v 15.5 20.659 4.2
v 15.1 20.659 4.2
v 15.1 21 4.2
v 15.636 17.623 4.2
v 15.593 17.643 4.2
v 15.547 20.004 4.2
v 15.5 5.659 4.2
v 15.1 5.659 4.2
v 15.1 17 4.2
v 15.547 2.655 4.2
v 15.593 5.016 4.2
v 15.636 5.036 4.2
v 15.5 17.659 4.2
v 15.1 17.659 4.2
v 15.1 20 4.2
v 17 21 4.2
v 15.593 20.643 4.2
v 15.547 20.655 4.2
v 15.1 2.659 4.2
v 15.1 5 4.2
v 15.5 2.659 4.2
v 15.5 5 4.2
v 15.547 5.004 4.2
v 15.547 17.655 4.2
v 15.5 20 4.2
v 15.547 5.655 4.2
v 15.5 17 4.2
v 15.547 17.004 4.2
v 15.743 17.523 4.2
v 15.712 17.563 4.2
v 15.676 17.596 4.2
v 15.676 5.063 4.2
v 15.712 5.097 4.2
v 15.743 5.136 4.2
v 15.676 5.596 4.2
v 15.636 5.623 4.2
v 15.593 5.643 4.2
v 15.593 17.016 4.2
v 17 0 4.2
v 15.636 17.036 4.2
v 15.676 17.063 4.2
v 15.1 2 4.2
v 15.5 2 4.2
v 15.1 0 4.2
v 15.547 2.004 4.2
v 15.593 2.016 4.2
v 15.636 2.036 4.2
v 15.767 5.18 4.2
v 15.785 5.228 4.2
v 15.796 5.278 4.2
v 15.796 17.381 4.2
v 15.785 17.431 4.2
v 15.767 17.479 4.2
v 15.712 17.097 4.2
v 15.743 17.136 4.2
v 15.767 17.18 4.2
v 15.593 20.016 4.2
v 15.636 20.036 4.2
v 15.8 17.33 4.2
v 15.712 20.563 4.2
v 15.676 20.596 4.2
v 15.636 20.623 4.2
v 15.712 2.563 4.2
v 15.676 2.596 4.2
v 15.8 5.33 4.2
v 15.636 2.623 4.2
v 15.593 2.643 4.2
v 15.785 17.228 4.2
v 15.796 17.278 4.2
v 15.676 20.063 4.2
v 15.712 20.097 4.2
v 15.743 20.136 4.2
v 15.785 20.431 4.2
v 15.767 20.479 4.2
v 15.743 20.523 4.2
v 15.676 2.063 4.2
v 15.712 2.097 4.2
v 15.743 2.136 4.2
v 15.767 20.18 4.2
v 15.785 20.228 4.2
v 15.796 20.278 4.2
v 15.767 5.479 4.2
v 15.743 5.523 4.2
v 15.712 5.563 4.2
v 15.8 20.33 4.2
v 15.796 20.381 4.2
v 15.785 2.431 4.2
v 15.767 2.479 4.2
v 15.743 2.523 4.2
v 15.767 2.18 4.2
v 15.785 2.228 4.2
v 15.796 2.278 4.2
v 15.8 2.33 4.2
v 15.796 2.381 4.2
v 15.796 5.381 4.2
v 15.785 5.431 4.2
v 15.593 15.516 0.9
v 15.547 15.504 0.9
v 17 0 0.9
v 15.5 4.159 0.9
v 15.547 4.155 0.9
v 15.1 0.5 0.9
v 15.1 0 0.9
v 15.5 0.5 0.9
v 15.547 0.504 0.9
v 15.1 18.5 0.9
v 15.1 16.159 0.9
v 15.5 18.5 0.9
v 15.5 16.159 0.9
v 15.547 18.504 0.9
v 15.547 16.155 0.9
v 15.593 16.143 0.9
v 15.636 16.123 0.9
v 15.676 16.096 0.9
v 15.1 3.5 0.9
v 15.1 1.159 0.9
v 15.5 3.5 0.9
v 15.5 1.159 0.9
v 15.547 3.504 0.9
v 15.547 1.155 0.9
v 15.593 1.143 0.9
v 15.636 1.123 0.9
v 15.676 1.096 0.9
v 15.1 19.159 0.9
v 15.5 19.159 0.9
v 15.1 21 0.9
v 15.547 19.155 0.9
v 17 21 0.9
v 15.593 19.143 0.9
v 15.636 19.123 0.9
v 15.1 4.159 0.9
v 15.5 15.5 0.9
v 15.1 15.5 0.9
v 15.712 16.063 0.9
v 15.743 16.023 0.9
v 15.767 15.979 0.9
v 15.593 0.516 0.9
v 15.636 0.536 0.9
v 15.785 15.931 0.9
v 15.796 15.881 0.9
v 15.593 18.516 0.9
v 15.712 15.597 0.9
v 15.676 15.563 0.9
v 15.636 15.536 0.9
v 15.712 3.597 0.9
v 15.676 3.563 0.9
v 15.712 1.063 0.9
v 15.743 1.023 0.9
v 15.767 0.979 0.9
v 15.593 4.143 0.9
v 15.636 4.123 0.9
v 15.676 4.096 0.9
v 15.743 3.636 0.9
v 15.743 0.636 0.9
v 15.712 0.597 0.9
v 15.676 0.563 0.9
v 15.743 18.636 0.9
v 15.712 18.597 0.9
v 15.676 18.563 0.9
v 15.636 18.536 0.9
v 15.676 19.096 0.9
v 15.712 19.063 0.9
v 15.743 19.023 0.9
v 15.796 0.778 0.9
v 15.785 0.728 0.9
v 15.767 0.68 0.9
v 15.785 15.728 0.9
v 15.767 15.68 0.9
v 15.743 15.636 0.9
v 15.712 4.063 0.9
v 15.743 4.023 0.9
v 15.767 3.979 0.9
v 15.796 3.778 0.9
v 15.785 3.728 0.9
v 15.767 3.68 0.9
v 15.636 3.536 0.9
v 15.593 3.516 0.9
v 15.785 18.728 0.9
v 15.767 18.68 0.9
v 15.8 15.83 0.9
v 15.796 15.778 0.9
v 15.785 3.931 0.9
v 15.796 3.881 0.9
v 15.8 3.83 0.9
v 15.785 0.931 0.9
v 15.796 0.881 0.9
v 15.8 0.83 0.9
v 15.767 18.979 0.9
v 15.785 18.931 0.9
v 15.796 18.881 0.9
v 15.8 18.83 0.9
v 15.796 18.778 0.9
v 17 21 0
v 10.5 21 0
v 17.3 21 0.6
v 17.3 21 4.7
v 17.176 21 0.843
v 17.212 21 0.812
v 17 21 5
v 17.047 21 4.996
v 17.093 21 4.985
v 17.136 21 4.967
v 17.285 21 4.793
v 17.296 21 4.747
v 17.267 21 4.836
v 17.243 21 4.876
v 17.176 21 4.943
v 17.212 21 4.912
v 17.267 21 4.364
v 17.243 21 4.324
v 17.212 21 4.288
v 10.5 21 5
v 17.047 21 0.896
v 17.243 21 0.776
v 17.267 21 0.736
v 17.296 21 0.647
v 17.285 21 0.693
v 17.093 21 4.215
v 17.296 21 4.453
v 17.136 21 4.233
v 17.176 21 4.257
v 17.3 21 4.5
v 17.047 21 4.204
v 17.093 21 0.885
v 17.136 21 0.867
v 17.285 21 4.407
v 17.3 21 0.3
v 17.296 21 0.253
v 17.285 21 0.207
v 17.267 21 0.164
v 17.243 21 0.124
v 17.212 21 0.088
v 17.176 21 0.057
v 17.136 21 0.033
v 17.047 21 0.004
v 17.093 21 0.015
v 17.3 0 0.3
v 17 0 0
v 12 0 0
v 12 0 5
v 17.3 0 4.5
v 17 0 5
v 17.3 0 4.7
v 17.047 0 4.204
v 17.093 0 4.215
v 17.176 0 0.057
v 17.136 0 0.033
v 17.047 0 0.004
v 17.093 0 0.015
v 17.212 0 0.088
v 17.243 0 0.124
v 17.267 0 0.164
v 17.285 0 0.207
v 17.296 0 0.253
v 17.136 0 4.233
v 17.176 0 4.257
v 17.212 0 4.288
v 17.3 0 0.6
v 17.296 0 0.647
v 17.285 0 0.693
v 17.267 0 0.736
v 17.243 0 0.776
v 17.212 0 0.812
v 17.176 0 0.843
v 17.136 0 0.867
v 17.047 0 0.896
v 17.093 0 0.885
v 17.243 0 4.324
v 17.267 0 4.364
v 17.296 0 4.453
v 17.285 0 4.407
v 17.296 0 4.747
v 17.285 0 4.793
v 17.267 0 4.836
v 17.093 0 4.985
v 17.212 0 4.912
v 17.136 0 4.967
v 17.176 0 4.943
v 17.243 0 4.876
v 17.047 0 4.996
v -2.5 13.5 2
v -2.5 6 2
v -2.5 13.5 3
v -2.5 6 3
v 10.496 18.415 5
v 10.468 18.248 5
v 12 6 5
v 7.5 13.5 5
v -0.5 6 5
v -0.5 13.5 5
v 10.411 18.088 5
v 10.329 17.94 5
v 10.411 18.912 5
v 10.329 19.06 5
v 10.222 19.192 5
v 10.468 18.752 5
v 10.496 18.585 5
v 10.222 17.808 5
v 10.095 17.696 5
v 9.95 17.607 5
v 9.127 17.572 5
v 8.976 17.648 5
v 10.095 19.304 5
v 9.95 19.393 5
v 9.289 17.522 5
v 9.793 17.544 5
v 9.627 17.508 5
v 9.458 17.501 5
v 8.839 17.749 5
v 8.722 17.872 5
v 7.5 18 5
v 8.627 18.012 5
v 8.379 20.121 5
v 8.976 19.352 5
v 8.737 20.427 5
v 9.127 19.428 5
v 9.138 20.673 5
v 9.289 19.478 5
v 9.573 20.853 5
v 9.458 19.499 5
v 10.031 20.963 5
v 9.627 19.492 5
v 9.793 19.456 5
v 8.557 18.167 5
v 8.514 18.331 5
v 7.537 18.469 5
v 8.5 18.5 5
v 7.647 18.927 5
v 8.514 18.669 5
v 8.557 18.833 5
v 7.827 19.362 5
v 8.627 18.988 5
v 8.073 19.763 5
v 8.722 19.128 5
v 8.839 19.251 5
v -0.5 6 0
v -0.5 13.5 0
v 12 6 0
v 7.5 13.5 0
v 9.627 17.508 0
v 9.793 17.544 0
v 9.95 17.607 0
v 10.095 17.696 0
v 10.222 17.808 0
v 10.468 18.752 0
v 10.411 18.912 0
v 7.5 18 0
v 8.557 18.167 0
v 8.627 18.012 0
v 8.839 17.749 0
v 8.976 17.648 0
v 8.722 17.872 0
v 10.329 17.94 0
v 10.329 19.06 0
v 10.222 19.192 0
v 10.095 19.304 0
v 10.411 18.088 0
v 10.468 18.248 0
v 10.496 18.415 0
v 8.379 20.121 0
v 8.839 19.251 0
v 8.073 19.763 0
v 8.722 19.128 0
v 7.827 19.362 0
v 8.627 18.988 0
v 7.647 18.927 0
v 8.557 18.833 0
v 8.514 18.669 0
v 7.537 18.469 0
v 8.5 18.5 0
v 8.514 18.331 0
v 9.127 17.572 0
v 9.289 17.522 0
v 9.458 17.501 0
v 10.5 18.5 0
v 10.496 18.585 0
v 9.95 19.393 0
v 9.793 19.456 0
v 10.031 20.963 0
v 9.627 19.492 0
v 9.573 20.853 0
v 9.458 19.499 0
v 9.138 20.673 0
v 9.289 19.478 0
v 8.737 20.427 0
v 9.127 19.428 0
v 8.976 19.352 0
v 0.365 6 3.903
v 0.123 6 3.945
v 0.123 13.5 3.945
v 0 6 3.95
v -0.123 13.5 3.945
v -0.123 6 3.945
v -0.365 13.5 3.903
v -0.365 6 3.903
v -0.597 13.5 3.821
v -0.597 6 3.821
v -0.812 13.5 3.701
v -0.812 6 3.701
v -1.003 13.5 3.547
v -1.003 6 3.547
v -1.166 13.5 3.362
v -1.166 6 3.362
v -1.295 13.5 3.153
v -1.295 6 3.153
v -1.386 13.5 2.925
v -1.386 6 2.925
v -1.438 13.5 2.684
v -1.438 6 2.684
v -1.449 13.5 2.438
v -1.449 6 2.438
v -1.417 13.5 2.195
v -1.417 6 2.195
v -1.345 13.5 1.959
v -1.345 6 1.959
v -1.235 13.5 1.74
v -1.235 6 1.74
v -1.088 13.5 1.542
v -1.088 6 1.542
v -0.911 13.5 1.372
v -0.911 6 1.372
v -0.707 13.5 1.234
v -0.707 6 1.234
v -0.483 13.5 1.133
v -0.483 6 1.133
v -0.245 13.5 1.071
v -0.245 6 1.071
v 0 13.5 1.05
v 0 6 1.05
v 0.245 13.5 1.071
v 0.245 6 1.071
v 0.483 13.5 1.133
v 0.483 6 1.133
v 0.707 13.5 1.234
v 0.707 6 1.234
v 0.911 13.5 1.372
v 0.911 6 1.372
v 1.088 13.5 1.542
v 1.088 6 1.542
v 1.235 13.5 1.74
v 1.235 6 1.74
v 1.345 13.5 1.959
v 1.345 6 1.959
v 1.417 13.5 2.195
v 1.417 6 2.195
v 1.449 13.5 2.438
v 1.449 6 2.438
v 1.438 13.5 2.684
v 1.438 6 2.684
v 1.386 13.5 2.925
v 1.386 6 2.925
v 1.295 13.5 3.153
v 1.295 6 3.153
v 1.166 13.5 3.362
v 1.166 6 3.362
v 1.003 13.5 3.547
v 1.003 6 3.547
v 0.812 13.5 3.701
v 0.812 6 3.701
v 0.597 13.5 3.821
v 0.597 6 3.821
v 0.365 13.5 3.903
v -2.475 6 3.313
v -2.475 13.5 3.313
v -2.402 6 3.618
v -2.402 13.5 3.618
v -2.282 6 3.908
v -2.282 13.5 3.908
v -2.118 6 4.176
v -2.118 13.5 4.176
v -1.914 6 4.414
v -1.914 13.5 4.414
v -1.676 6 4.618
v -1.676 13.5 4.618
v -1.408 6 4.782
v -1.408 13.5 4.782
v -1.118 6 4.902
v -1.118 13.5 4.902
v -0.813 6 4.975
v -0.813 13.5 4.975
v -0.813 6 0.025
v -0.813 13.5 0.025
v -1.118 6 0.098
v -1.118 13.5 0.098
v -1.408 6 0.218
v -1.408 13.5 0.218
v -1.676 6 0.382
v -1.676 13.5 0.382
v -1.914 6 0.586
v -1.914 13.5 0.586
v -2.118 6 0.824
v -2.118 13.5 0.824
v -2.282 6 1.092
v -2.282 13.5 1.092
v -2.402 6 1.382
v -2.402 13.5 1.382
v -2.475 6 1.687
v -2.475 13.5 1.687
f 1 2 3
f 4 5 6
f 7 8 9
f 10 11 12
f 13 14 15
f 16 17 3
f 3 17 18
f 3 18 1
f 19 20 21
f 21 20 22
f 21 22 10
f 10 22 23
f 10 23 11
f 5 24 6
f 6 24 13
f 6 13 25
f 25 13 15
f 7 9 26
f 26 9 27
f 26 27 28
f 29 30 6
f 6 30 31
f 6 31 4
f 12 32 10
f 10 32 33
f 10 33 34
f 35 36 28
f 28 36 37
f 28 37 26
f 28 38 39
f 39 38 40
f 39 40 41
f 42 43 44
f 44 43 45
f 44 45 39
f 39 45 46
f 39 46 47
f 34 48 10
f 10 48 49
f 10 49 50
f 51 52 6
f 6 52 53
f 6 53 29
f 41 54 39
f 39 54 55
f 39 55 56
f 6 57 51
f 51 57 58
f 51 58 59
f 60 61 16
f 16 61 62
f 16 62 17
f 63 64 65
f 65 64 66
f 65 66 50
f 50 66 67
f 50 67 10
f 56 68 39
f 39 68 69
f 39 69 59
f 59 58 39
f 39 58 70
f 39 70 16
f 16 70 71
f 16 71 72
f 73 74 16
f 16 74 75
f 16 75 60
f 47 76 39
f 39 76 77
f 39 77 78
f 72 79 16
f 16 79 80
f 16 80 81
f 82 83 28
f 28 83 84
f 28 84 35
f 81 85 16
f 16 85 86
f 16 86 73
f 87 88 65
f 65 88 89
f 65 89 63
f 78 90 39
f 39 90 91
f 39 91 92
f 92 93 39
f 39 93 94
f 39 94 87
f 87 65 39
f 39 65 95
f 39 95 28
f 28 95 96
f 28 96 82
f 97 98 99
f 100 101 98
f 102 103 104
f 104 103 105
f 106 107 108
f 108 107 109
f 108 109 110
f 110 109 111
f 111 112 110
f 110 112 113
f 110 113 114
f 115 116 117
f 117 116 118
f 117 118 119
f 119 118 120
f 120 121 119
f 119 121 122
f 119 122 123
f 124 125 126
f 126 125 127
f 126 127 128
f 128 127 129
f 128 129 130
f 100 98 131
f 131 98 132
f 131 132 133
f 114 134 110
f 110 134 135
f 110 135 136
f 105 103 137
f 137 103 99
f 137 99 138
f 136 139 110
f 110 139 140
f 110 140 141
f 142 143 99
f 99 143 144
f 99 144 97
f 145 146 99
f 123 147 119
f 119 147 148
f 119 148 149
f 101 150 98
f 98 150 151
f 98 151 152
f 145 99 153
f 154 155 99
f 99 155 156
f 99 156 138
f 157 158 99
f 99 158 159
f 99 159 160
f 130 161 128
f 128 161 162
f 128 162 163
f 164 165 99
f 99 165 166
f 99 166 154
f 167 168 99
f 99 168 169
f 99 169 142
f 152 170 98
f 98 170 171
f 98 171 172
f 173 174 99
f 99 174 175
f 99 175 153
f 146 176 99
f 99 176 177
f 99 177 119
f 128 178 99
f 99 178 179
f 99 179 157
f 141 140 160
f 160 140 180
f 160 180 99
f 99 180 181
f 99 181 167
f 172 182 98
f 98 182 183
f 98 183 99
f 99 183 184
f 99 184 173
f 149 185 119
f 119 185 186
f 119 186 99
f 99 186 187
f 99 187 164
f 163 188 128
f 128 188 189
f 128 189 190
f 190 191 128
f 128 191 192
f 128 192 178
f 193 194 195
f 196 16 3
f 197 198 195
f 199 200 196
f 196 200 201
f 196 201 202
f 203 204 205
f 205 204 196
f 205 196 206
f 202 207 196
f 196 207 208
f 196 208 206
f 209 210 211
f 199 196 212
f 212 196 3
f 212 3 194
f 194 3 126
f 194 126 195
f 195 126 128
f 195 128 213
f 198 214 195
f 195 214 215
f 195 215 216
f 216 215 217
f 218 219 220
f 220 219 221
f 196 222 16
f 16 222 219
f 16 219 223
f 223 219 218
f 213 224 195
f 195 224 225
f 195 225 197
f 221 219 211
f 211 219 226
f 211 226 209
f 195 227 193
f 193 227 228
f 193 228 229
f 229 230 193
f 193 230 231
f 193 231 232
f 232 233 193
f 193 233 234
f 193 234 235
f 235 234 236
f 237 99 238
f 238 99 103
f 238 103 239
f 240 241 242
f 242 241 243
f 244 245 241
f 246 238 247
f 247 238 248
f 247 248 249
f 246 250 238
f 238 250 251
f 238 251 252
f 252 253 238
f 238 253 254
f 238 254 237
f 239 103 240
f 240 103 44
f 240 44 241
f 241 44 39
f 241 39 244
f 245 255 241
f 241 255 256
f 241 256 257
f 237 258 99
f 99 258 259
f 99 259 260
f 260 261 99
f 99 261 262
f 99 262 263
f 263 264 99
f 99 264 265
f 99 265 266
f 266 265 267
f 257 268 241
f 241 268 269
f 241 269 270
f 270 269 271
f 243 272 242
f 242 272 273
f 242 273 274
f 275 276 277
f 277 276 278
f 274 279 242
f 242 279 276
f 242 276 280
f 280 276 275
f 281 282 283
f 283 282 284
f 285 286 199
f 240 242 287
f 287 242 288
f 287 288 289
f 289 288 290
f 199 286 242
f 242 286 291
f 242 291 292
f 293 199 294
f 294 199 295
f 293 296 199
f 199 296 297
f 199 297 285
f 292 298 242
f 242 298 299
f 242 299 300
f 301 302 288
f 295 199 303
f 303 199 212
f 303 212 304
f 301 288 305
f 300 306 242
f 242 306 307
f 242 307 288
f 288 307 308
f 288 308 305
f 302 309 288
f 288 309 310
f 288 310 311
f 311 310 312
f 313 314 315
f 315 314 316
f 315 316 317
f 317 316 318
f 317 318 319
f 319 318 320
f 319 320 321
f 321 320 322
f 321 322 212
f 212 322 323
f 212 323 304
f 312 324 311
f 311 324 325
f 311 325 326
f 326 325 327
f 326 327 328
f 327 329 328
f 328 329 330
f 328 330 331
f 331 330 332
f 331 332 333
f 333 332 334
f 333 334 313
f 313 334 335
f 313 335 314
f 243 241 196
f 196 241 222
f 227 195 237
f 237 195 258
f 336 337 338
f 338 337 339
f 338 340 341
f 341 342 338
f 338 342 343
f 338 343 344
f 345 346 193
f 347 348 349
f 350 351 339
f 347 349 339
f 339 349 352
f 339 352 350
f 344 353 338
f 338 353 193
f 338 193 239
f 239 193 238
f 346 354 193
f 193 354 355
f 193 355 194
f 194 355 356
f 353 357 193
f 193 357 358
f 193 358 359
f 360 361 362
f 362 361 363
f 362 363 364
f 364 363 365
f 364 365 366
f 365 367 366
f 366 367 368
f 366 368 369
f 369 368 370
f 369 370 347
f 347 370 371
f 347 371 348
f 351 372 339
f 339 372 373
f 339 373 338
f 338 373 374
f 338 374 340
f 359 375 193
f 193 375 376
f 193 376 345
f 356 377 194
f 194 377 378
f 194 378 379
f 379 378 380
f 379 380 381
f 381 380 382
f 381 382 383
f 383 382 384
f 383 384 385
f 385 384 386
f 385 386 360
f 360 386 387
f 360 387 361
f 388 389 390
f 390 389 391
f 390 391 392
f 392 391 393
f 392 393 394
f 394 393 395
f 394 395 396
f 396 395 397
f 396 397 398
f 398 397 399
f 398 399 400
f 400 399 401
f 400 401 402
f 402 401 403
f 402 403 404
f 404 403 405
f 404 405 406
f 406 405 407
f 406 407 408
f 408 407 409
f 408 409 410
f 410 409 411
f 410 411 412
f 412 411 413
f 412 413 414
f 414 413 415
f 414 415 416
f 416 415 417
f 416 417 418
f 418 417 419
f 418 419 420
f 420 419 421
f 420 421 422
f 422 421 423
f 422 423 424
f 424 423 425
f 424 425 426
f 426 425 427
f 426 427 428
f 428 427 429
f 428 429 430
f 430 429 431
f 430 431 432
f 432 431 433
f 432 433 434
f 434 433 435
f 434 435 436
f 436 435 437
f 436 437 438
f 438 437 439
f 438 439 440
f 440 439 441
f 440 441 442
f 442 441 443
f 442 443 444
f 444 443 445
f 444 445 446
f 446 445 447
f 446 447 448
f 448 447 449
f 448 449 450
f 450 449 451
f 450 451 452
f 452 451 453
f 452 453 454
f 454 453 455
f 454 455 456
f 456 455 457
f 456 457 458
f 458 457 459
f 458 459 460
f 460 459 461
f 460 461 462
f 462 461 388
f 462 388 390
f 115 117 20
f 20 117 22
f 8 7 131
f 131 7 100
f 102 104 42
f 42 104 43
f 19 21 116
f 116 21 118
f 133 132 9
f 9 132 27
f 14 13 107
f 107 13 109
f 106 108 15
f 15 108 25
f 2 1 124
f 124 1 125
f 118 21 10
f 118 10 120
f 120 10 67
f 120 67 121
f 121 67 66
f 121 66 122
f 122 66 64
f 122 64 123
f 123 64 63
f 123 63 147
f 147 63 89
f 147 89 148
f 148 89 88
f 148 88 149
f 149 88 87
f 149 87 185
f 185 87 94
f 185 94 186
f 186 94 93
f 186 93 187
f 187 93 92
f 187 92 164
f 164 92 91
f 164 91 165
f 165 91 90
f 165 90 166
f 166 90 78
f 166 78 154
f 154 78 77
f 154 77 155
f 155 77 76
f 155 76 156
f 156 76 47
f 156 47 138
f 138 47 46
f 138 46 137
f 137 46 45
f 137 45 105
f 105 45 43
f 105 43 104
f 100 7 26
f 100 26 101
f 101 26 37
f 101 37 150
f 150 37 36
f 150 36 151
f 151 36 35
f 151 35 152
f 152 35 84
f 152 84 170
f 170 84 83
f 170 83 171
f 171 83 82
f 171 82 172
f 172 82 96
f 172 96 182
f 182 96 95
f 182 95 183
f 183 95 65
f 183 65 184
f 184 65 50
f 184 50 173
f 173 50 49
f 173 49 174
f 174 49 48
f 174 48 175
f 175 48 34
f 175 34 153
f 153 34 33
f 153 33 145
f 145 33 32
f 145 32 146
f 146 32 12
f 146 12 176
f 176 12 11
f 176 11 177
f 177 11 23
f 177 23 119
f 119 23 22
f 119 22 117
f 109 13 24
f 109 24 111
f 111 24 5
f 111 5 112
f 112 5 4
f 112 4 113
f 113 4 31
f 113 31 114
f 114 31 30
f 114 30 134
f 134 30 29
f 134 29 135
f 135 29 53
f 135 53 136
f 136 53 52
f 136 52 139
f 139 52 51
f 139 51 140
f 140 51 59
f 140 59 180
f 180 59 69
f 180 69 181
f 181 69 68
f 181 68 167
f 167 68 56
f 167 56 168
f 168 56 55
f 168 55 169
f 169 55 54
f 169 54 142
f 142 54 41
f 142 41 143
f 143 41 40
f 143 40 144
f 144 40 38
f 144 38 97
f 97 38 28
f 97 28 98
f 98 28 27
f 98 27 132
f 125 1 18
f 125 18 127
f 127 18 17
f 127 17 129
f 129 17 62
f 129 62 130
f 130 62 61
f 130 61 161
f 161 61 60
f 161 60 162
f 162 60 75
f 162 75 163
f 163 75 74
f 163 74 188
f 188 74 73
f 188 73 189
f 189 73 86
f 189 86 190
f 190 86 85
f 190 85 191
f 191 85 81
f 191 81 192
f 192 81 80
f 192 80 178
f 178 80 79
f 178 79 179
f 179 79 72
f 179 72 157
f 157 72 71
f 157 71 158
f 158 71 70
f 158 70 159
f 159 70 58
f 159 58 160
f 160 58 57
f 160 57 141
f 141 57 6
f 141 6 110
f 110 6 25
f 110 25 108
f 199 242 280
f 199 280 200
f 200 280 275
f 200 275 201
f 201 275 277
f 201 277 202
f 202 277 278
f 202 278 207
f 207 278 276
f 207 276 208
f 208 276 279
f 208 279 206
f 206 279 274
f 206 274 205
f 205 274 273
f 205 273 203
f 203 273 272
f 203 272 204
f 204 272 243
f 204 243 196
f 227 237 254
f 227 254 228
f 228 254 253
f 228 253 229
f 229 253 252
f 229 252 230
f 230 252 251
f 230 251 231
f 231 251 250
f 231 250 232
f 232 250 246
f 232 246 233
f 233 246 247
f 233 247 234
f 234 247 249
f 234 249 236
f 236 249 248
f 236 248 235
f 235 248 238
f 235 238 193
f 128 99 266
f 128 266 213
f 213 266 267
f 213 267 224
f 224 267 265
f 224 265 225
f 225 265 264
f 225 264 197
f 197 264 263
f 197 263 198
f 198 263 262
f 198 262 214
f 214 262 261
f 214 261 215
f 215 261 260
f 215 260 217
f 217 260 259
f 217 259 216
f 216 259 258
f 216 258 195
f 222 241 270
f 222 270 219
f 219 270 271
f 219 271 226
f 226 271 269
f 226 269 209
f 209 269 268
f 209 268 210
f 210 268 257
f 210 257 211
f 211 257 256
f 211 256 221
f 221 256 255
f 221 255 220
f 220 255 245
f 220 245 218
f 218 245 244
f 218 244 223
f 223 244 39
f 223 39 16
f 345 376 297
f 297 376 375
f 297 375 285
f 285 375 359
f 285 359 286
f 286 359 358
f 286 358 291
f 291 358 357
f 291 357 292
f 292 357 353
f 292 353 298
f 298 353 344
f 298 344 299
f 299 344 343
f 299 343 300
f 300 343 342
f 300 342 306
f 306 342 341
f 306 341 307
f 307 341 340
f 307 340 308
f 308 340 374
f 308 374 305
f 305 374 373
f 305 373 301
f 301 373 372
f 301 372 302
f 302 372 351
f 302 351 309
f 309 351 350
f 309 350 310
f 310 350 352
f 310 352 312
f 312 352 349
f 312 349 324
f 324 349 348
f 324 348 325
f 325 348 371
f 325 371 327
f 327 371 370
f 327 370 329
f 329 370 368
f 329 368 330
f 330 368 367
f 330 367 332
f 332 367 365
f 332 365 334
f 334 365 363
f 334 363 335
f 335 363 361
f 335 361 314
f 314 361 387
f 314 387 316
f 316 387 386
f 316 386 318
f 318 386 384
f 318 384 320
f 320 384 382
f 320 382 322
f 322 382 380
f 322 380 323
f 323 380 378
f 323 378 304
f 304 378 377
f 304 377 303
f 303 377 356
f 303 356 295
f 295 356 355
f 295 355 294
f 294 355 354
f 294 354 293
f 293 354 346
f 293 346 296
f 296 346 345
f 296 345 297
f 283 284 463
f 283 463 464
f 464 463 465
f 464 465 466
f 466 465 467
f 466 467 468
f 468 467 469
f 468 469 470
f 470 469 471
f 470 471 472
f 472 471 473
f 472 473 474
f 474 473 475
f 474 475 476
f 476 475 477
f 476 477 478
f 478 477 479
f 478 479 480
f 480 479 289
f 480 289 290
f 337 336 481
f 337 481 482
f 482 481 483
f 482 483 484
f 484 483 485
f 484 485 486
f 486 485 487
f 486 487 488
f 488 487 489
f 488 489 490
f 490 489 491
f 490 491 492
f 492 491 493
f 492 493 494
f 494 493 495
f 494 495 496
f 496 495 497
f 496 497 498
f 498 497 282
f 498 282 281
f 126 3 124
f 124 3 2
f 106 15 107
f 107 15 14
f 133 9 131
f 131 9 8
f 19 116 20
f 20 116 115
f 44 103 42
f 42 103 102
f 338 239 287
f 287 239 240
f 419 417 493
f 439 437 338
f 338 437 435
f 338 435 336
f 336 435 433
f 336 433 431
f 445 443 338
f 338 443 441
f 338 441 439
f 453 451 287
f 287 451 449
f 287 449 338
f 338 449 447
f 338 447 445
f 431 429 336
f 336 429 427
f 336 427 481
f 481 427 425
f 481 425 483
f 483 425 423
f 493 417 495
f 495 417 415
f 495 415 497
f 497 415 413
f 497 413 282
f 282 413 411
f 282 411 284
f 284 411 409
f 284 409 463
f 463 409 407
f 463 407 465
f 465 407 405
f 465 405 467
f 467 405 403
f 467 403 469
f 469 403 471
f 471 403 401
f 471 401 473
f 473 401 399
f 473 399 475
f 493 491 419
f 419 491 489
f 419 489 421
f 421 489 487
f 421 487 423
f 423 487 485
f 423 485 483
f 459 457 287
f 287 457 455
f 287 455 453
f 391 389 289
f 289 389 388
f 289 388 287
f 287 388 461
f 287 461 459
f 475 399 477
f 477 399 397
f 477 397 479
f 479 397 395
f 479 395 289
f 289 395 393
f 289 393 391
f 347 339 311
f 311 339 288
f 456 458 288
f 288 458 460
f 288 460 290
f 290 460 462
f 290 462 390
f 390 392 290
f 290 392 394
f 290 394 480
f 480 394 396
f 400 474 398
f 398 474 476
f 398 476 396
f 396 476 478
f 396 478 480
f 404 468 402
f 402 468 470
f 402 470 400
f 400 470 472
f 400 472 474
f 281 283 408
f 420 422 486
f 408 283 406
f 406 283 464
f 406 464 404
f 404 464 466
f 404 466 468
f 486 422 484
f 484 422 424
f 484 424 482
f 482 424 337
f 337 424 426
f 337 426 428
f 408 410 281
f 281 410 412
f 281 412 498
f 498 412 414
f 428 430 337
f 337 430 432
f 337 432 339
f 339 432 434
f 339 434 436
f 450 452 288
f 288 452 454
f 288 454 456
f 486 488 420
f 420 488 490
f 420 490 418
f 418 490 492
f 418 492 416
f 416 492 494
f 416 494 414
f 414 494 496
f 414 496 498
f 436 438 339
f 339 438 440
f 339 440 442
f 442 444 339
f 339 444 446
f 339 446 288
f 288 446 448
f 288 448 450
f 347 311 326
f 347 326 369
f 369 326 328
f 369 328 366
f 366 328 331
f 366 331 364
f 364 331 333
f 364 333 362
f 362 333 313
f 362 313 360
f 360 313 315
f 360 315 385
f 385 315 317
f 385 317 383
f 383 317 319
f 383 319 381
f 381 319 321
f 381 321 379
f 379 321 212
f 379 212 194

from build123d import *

# Parameters (mm, degrees)
SKETCH_1_R          = 1.45
EXTRUDE_1_DEPTH     = 21
EXTRUDE_2_DEPTH     = 1.3
FILLET_1_R          = 0.3
FILLET_2_R          = 0.3
SKETCH_3_R          = 1
CUT_EXTRUDE_3_DEPTH = 10
FILLET_3_R          = 2
SKETCH_4_W          = 3.3
SKETCH_4_H          = 21
EXTRUDE_4_DEPTH     = 0.6
SKETCH_7_W          = 15
SKETCH_7_H          = 13.536537926
SKETCH_7_W_2        = 10.5
SKETCH_7_H_2        = 9.5
CUT_EXTRUDE_4_DEPTH = 10
FILLET_7_R          = 3


with BuildPart() as part:
    # 草圖1 → 填料-伸長1 (new body)
    with BuildSketch(Plane(origin=(0, 0, 0), x_dir=(1, 0, 0), z_dir=(0, 1, 0))):
        Polygon((17.3, -0.9), (14.5, -0.9), (14.5, -4.2), (17.3, -4.2), (17.3, -5), (0, -5), (-2.5, -5), (-2.5, 0), (0, 0), (17.3, 0), align=None)
        with Locations(Location((0, -2.5, 0), (0, 0, 90))):
            Circle(SKETCH_1_R, mode=Mode.SUBTRACT)
    extrude(amount=EXTRUDE_1_DEPTH)

    # 草圖2 → 填料-伸長2 (add)
    with BuildSketch(Plane(origin=(14.5, 0, 0), x_dir=(0, 0, -1), z_dir=(1, 0, 0))):
        Polygon((-4.2, 5.659075235), (-0.9, 4.159075235), (-0.9, 3.5), (-4.2, 5), align=None)
        Polygon((-4.2, 2.659075235), (-0.9, 1.159075235), (-0.9, 0.5), (-4.2, 2), align=None)
        Polygon((-4.2, 17.659075235), (-0.9, 16.159075235), (-0.9, 15.5), (-4.2, 17), align=None)
        Polygon((-4.2, 20.659075235), (-0.9, 19.159075235), (-0.9, 18.5), (-4.2, 20), align=None)
    extrude(amount=EXTRUDE_2_DEPTH)

    # 圓角1
    fillet_1_edges = [part.edges().sort_by_distance(p)[0] for p in [
        (15.8, 1.909075235, 2.55),
        (15.8, 1.25, 2.55),
        (15.8, 4.25, 2.55),
        (15.8, 4.909075235, 2.55),
        (15.8, 16.25, 2.55),
        (15.8, 16.909075235, 2.55),
        (15.8, 19.25, 2.55),
        (15.8, 19.909075235, 2.55),
    ]]
    fillet(fillet_1_edges, radius=FILLET_1_R - 0.0001)  # a hair under: the kernel refuses the full size

    # 圓角2
    fillet_2_edges = [part.edges().sort_by_distance(p)[0] for p in [
        (17.3, 10.5, 0),
        (17.3, 10.5, 0.9),
        (17.3, 10.5, 4.2),
        (17.3, 10.5, 5),
    ]]
    fillet(fillet_2_edges, radius=FILLET_2_R)

    # 草圖3 → 除料-伸長3 (cut)
    with BuildSketch(Plane.XY):
        with Locations(Location((9.5, 18.5, 0), (0, 0, 180))):
            Circle(SKETCH_3_R)
    extrude(amount=CUT_EXTRUDE_3_DEPTH, mode=Mode.SUBTRACT)

    # 圓角3
    fillet_3_edges = [part.edges().sort_by_distance(p)[0] for p in [
        (-2.5, 10.5, 5),
        (-2.5, 10.5, 0),
    ]]
    fillet(fillet_3_edges, radius=FILLET_3_R)

    # 草圖4 → 填料-伸長4 (add)
    with BuildSketch(Plane(origin=(14.5, 0, 0), x_dir=(0, 0, -1), z_dir=(1, 0, 0))):
        with Locations((-2.55, 10.5)):
            Rectangle(SKETCH_4_W, SKETCH_4_H)
    extrude(amount=EXTRUDE_4_DEPTH)

    # 草圖7 → 除料-伸長4 (cut)
    with BuildSketch(Plane.XY.offset(5)):
        with Locations((4.5, -0.768268963)):
            Rectangle(SKETCH_7_W, SKETCH_7_H)
        with Locations((2.25, 18.25)):
            Rectangle(SKETCH_7_W_2, SKETCH_7_H_2)
    extrude(amount=-CUT_EXTRUDE_4_DEPTH, mode=Mode.SUBTRACT)

    # 圓角7
    fillet_7_edges = [part.edges().sort_by_distance(p)[0] for p in [
        (7.5, 21, 2.5),
    ]]
    fillet(fillet_7_edges, radius=FILLET_7_R)


solid = part.part
